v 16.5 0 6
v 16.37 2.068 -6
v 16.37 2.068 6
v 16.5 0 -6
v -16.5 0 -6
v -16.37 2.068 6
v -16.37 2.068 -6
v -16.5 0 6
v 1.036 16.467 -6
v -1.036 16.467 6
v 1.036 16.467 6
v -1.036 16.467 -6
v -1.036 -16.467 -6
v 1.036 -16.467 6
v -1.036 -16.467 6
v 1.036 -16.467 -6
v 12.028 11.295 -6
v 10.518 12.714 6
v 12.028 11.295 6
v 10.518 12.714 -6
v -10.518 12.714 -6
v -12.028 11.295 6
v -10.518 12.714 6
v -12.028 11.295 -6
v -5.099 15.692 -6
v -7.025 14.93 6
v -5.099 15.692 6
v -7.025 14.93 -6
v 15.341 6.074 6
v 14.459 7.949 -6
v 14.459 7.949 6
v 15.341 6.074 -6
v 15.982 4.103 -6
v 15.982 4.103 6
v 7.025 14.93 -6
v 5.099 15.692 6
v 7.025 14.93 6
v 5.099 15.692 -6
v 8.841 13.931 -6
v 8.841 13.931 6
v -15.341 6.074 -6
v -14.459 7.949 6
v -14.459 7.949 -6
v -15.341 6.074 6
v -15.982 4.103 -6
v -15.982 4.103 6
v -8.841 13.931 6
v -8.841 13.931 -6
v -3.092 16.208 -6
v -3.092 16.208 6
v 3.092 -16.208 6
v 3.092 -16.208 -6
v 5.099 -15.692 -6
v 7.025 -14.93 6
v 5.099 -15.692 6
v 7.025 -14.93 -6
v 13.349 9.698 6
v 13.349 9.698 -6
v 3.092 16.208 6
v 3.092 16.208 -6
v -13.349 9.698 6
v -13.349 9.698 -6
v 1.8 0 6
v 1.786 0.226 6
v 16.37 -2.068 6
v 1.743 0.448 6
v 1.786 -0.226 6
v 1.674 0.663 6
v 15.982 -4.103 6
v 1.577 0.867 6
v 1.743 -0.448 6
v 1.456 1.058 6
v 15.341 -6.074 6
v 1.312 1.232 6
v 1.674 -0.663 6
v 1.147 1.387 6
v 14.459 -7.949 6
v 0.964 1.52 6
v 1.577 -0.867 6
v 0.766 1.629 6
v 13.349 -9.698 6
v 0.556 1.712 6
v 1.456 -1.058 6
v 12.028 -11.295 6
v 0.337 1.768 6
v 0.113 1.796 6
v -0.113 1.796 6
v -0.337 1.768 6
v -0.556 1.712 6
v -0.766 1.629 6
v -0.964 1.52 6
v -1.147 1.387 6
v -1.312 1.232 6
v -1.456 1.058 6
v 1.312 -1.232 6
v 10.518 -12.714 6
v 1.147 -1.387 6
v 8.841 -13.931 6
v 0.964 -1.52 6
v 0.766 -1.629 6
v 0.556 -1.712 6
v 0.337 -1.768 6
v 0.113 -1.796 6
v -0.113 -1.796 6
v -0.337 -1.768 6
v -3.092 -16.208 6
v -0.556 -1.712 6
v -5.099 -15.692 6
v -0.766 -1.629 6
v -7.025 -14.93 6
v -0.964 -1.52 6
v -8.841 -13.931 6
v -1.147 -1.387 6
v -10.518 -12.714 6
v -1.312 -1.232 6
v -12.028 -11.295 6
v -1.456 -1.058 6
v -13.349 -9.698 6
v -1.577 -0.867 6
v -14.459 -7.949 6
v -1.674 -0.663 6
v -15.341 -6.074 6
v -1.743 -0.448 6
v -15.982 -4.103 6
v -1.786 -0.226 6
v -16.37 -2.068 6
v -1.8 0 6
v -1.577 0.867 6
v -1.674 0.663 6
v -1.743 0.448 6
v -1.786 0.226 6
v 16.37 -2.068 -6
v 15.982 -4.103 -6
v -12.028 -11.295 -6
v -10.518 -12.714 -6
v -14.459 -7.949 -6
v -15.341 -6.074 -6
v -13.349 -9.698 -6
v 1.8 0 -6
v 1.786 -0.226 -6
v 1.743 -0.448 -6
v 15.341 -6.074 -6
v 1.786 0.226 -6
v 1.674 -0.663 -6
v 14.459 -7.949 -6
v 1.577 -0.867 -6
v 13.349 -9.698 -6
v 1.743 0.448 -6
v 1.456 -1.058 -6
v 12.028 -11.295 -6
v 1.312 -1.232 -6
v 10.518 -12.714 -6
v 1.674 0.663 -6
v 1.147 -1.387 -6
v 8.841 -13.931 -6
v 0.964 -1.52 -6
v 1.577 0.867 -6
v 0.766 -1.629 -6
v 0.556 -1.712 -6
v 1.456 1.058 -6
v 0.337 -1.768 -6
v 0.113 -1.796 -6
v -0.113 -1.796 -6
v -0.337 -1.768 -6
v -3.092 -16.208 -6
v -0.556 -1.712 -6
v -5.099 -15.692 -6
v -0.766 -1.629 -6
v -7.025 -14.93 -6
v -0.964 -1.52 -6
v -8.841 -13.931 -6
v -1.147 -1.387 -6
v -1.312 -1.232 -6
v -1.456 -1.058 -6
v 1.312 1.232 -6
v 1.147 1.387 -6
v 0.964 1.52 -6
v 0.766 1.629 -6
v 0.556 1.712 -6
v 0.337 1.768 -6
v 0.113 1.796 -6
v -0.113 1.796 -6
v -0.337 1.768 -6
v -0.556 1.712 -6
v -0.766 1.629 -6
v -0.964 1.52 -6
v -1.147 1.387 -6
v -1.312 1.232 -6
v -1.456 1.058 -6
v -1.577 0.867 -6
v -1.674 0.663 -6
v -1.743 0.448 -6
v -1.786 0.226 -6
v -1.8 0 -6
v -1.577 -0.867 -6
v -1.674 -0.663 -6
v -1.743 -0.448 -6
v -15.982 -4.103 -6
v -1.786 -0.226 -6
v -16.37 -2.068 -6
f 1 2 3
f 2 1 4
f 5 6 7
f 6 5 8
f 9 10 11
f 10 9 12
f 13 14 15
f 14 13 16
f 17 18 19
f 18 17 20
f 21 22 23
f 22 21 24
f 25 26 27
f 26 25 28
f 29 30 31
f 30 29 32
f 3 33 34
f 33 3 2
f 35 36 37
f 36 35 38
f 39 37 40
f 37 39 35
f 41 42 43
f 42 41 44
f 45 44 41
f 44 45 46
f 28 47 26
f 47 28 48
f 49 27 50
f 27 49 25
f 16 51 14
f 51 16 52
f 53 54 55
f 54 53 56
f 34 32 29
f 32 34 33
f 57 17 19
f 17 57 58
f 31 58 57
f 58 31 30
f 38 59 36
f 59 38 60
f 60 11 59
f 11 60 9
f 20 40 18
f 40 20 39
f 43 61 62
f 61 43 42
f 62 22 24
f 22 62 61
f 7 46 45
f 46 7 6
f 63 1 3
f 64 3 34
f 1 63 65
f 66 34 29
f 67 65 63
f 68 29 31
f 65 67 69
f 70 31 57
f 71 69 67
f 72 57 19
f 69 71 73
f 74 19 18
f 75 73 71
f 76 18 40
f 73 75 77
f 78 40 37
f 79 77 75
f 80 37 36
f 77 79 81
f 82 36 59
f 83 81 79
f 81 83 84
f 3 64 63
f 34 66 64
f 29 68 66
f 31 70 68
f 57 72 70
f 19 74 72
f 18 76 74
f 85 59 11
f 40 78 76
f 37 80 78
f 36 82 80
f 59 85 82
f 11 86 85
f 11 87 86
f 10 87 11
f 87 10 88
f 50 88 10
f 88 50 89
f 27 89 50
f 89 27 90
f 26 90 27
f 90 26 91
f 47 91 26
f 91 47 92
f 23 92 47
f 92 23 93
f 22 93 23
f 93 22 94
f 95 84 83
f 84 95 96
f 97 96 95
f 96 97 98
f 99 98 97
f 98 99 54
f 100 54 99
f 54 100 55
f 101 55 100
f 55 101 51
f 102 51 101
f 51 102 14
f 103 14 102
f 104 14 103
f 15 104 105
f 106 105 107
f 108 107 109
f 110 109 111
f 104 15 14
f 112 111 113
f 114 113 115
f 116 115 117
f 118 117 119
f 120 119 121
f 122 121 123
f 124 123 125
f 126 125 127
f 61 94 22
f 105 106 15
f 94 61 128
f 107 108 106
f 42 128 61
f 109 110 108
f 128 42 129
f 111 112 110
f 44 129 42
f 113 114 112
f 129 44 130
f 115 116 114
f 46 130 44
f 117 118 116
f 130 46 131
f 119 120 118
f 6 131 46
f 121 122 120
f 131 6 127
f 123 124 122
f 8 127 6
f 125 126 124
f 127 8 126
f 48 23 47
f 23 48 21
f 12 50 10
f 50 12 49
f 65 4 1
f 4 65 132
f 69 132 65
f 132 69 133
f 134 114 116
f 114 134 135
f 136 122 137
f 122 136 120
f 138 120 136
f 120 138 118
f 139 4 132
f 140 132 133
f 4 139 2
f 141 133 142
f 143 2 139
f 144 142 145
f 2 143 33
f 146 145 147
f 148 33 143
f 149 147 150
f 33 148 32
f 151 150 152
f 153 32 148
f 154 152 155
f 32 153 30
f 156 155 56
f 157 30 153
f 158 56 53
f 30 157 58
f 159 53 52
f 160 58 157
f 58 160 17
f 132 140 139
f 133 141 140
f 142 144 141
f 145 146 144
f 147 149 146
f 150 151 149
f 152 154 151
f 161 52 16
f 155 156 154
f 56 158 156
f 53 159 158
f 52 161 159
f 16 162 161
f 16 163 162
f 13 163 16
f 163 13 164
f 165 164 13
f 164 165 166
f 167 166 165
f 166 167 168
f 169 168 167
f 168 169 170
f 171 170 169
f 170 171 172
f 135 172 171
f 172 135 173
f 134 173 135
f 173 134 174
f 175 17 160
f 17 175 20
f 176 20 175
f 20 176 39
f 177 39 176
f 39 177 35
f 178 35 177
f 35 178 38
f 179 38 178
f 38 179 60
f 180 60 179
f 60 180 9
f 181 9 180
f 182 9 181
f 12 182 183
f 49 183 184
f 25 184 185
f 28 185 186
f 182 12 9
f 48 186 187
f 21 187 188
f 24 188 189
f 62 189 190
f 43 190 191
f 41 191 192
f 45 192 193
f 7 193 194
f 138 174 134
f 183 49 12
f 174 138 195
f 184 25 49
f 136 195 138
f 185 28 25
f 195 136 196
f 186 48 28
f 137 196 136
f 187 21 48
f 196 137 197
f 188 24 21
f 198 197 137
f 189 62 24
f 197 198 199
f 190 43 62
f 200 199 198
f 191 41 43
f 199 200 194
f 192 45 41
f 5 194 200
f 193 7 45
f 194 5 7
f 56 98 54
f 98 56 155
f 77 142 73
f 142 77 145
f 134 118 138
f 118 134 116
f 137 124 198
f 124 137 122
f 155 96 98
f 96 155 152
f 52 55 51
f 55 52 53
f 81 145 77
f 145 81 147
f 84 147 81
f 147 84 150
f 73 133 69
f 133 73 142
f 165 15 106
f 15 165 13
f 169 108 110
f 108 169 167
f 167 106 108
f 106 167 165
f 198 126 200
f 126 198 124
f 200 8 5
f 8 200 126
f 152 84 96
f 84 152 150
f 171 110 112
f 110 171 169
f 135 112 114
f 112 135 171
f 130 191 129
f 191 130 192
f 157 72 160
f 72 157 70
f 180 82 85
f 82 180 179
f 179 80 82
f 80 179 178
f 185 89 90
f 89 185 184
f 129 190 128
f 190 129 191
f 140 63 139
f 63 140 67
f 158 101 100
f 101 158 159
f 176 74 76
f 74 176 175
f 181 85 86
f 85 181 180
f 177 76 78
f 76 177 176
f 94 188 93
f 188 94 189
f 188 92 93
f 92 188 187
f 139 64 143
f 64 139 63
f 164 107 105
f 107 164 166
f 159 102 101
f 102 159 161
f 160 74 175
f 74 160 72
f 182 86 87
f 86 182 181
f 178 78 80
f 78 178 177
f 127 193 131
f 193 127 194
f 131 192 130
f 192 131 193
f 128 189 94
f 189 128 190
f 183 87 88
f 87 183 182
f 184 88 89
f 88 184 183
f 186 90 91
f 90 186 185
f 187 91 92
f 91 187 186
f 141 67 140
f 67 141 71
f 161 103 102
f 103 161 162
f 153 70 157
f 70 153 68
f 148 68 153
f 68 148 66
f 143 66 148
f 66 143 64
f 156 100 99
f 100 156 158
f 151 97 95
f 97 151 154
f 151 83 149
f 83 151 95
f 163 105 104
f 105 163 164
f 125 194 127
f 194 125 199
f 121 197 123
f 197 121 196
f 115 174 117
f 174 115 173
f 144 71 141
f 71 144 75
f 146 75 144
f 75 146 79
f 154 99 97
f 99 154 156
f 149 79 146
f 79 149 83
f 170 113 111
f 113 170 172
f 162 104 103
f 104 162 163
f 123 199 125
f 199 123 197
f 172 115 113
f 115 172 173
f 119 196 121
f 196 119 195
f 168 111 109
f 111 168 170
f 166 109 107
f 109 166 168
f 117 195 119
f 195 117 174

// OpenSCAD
$fn = 50;


difference() {
	union() {
		translate(v = [0, 0, -6.0000000000]) {
			cylinder(h = 12, r = 16.5000000000);
		}
	}
	union() {
		translate(v = [0, 0, -100.0000000000]) {
			cylinder(h = 200, r = 1.8000000000);
		}
	}
}
